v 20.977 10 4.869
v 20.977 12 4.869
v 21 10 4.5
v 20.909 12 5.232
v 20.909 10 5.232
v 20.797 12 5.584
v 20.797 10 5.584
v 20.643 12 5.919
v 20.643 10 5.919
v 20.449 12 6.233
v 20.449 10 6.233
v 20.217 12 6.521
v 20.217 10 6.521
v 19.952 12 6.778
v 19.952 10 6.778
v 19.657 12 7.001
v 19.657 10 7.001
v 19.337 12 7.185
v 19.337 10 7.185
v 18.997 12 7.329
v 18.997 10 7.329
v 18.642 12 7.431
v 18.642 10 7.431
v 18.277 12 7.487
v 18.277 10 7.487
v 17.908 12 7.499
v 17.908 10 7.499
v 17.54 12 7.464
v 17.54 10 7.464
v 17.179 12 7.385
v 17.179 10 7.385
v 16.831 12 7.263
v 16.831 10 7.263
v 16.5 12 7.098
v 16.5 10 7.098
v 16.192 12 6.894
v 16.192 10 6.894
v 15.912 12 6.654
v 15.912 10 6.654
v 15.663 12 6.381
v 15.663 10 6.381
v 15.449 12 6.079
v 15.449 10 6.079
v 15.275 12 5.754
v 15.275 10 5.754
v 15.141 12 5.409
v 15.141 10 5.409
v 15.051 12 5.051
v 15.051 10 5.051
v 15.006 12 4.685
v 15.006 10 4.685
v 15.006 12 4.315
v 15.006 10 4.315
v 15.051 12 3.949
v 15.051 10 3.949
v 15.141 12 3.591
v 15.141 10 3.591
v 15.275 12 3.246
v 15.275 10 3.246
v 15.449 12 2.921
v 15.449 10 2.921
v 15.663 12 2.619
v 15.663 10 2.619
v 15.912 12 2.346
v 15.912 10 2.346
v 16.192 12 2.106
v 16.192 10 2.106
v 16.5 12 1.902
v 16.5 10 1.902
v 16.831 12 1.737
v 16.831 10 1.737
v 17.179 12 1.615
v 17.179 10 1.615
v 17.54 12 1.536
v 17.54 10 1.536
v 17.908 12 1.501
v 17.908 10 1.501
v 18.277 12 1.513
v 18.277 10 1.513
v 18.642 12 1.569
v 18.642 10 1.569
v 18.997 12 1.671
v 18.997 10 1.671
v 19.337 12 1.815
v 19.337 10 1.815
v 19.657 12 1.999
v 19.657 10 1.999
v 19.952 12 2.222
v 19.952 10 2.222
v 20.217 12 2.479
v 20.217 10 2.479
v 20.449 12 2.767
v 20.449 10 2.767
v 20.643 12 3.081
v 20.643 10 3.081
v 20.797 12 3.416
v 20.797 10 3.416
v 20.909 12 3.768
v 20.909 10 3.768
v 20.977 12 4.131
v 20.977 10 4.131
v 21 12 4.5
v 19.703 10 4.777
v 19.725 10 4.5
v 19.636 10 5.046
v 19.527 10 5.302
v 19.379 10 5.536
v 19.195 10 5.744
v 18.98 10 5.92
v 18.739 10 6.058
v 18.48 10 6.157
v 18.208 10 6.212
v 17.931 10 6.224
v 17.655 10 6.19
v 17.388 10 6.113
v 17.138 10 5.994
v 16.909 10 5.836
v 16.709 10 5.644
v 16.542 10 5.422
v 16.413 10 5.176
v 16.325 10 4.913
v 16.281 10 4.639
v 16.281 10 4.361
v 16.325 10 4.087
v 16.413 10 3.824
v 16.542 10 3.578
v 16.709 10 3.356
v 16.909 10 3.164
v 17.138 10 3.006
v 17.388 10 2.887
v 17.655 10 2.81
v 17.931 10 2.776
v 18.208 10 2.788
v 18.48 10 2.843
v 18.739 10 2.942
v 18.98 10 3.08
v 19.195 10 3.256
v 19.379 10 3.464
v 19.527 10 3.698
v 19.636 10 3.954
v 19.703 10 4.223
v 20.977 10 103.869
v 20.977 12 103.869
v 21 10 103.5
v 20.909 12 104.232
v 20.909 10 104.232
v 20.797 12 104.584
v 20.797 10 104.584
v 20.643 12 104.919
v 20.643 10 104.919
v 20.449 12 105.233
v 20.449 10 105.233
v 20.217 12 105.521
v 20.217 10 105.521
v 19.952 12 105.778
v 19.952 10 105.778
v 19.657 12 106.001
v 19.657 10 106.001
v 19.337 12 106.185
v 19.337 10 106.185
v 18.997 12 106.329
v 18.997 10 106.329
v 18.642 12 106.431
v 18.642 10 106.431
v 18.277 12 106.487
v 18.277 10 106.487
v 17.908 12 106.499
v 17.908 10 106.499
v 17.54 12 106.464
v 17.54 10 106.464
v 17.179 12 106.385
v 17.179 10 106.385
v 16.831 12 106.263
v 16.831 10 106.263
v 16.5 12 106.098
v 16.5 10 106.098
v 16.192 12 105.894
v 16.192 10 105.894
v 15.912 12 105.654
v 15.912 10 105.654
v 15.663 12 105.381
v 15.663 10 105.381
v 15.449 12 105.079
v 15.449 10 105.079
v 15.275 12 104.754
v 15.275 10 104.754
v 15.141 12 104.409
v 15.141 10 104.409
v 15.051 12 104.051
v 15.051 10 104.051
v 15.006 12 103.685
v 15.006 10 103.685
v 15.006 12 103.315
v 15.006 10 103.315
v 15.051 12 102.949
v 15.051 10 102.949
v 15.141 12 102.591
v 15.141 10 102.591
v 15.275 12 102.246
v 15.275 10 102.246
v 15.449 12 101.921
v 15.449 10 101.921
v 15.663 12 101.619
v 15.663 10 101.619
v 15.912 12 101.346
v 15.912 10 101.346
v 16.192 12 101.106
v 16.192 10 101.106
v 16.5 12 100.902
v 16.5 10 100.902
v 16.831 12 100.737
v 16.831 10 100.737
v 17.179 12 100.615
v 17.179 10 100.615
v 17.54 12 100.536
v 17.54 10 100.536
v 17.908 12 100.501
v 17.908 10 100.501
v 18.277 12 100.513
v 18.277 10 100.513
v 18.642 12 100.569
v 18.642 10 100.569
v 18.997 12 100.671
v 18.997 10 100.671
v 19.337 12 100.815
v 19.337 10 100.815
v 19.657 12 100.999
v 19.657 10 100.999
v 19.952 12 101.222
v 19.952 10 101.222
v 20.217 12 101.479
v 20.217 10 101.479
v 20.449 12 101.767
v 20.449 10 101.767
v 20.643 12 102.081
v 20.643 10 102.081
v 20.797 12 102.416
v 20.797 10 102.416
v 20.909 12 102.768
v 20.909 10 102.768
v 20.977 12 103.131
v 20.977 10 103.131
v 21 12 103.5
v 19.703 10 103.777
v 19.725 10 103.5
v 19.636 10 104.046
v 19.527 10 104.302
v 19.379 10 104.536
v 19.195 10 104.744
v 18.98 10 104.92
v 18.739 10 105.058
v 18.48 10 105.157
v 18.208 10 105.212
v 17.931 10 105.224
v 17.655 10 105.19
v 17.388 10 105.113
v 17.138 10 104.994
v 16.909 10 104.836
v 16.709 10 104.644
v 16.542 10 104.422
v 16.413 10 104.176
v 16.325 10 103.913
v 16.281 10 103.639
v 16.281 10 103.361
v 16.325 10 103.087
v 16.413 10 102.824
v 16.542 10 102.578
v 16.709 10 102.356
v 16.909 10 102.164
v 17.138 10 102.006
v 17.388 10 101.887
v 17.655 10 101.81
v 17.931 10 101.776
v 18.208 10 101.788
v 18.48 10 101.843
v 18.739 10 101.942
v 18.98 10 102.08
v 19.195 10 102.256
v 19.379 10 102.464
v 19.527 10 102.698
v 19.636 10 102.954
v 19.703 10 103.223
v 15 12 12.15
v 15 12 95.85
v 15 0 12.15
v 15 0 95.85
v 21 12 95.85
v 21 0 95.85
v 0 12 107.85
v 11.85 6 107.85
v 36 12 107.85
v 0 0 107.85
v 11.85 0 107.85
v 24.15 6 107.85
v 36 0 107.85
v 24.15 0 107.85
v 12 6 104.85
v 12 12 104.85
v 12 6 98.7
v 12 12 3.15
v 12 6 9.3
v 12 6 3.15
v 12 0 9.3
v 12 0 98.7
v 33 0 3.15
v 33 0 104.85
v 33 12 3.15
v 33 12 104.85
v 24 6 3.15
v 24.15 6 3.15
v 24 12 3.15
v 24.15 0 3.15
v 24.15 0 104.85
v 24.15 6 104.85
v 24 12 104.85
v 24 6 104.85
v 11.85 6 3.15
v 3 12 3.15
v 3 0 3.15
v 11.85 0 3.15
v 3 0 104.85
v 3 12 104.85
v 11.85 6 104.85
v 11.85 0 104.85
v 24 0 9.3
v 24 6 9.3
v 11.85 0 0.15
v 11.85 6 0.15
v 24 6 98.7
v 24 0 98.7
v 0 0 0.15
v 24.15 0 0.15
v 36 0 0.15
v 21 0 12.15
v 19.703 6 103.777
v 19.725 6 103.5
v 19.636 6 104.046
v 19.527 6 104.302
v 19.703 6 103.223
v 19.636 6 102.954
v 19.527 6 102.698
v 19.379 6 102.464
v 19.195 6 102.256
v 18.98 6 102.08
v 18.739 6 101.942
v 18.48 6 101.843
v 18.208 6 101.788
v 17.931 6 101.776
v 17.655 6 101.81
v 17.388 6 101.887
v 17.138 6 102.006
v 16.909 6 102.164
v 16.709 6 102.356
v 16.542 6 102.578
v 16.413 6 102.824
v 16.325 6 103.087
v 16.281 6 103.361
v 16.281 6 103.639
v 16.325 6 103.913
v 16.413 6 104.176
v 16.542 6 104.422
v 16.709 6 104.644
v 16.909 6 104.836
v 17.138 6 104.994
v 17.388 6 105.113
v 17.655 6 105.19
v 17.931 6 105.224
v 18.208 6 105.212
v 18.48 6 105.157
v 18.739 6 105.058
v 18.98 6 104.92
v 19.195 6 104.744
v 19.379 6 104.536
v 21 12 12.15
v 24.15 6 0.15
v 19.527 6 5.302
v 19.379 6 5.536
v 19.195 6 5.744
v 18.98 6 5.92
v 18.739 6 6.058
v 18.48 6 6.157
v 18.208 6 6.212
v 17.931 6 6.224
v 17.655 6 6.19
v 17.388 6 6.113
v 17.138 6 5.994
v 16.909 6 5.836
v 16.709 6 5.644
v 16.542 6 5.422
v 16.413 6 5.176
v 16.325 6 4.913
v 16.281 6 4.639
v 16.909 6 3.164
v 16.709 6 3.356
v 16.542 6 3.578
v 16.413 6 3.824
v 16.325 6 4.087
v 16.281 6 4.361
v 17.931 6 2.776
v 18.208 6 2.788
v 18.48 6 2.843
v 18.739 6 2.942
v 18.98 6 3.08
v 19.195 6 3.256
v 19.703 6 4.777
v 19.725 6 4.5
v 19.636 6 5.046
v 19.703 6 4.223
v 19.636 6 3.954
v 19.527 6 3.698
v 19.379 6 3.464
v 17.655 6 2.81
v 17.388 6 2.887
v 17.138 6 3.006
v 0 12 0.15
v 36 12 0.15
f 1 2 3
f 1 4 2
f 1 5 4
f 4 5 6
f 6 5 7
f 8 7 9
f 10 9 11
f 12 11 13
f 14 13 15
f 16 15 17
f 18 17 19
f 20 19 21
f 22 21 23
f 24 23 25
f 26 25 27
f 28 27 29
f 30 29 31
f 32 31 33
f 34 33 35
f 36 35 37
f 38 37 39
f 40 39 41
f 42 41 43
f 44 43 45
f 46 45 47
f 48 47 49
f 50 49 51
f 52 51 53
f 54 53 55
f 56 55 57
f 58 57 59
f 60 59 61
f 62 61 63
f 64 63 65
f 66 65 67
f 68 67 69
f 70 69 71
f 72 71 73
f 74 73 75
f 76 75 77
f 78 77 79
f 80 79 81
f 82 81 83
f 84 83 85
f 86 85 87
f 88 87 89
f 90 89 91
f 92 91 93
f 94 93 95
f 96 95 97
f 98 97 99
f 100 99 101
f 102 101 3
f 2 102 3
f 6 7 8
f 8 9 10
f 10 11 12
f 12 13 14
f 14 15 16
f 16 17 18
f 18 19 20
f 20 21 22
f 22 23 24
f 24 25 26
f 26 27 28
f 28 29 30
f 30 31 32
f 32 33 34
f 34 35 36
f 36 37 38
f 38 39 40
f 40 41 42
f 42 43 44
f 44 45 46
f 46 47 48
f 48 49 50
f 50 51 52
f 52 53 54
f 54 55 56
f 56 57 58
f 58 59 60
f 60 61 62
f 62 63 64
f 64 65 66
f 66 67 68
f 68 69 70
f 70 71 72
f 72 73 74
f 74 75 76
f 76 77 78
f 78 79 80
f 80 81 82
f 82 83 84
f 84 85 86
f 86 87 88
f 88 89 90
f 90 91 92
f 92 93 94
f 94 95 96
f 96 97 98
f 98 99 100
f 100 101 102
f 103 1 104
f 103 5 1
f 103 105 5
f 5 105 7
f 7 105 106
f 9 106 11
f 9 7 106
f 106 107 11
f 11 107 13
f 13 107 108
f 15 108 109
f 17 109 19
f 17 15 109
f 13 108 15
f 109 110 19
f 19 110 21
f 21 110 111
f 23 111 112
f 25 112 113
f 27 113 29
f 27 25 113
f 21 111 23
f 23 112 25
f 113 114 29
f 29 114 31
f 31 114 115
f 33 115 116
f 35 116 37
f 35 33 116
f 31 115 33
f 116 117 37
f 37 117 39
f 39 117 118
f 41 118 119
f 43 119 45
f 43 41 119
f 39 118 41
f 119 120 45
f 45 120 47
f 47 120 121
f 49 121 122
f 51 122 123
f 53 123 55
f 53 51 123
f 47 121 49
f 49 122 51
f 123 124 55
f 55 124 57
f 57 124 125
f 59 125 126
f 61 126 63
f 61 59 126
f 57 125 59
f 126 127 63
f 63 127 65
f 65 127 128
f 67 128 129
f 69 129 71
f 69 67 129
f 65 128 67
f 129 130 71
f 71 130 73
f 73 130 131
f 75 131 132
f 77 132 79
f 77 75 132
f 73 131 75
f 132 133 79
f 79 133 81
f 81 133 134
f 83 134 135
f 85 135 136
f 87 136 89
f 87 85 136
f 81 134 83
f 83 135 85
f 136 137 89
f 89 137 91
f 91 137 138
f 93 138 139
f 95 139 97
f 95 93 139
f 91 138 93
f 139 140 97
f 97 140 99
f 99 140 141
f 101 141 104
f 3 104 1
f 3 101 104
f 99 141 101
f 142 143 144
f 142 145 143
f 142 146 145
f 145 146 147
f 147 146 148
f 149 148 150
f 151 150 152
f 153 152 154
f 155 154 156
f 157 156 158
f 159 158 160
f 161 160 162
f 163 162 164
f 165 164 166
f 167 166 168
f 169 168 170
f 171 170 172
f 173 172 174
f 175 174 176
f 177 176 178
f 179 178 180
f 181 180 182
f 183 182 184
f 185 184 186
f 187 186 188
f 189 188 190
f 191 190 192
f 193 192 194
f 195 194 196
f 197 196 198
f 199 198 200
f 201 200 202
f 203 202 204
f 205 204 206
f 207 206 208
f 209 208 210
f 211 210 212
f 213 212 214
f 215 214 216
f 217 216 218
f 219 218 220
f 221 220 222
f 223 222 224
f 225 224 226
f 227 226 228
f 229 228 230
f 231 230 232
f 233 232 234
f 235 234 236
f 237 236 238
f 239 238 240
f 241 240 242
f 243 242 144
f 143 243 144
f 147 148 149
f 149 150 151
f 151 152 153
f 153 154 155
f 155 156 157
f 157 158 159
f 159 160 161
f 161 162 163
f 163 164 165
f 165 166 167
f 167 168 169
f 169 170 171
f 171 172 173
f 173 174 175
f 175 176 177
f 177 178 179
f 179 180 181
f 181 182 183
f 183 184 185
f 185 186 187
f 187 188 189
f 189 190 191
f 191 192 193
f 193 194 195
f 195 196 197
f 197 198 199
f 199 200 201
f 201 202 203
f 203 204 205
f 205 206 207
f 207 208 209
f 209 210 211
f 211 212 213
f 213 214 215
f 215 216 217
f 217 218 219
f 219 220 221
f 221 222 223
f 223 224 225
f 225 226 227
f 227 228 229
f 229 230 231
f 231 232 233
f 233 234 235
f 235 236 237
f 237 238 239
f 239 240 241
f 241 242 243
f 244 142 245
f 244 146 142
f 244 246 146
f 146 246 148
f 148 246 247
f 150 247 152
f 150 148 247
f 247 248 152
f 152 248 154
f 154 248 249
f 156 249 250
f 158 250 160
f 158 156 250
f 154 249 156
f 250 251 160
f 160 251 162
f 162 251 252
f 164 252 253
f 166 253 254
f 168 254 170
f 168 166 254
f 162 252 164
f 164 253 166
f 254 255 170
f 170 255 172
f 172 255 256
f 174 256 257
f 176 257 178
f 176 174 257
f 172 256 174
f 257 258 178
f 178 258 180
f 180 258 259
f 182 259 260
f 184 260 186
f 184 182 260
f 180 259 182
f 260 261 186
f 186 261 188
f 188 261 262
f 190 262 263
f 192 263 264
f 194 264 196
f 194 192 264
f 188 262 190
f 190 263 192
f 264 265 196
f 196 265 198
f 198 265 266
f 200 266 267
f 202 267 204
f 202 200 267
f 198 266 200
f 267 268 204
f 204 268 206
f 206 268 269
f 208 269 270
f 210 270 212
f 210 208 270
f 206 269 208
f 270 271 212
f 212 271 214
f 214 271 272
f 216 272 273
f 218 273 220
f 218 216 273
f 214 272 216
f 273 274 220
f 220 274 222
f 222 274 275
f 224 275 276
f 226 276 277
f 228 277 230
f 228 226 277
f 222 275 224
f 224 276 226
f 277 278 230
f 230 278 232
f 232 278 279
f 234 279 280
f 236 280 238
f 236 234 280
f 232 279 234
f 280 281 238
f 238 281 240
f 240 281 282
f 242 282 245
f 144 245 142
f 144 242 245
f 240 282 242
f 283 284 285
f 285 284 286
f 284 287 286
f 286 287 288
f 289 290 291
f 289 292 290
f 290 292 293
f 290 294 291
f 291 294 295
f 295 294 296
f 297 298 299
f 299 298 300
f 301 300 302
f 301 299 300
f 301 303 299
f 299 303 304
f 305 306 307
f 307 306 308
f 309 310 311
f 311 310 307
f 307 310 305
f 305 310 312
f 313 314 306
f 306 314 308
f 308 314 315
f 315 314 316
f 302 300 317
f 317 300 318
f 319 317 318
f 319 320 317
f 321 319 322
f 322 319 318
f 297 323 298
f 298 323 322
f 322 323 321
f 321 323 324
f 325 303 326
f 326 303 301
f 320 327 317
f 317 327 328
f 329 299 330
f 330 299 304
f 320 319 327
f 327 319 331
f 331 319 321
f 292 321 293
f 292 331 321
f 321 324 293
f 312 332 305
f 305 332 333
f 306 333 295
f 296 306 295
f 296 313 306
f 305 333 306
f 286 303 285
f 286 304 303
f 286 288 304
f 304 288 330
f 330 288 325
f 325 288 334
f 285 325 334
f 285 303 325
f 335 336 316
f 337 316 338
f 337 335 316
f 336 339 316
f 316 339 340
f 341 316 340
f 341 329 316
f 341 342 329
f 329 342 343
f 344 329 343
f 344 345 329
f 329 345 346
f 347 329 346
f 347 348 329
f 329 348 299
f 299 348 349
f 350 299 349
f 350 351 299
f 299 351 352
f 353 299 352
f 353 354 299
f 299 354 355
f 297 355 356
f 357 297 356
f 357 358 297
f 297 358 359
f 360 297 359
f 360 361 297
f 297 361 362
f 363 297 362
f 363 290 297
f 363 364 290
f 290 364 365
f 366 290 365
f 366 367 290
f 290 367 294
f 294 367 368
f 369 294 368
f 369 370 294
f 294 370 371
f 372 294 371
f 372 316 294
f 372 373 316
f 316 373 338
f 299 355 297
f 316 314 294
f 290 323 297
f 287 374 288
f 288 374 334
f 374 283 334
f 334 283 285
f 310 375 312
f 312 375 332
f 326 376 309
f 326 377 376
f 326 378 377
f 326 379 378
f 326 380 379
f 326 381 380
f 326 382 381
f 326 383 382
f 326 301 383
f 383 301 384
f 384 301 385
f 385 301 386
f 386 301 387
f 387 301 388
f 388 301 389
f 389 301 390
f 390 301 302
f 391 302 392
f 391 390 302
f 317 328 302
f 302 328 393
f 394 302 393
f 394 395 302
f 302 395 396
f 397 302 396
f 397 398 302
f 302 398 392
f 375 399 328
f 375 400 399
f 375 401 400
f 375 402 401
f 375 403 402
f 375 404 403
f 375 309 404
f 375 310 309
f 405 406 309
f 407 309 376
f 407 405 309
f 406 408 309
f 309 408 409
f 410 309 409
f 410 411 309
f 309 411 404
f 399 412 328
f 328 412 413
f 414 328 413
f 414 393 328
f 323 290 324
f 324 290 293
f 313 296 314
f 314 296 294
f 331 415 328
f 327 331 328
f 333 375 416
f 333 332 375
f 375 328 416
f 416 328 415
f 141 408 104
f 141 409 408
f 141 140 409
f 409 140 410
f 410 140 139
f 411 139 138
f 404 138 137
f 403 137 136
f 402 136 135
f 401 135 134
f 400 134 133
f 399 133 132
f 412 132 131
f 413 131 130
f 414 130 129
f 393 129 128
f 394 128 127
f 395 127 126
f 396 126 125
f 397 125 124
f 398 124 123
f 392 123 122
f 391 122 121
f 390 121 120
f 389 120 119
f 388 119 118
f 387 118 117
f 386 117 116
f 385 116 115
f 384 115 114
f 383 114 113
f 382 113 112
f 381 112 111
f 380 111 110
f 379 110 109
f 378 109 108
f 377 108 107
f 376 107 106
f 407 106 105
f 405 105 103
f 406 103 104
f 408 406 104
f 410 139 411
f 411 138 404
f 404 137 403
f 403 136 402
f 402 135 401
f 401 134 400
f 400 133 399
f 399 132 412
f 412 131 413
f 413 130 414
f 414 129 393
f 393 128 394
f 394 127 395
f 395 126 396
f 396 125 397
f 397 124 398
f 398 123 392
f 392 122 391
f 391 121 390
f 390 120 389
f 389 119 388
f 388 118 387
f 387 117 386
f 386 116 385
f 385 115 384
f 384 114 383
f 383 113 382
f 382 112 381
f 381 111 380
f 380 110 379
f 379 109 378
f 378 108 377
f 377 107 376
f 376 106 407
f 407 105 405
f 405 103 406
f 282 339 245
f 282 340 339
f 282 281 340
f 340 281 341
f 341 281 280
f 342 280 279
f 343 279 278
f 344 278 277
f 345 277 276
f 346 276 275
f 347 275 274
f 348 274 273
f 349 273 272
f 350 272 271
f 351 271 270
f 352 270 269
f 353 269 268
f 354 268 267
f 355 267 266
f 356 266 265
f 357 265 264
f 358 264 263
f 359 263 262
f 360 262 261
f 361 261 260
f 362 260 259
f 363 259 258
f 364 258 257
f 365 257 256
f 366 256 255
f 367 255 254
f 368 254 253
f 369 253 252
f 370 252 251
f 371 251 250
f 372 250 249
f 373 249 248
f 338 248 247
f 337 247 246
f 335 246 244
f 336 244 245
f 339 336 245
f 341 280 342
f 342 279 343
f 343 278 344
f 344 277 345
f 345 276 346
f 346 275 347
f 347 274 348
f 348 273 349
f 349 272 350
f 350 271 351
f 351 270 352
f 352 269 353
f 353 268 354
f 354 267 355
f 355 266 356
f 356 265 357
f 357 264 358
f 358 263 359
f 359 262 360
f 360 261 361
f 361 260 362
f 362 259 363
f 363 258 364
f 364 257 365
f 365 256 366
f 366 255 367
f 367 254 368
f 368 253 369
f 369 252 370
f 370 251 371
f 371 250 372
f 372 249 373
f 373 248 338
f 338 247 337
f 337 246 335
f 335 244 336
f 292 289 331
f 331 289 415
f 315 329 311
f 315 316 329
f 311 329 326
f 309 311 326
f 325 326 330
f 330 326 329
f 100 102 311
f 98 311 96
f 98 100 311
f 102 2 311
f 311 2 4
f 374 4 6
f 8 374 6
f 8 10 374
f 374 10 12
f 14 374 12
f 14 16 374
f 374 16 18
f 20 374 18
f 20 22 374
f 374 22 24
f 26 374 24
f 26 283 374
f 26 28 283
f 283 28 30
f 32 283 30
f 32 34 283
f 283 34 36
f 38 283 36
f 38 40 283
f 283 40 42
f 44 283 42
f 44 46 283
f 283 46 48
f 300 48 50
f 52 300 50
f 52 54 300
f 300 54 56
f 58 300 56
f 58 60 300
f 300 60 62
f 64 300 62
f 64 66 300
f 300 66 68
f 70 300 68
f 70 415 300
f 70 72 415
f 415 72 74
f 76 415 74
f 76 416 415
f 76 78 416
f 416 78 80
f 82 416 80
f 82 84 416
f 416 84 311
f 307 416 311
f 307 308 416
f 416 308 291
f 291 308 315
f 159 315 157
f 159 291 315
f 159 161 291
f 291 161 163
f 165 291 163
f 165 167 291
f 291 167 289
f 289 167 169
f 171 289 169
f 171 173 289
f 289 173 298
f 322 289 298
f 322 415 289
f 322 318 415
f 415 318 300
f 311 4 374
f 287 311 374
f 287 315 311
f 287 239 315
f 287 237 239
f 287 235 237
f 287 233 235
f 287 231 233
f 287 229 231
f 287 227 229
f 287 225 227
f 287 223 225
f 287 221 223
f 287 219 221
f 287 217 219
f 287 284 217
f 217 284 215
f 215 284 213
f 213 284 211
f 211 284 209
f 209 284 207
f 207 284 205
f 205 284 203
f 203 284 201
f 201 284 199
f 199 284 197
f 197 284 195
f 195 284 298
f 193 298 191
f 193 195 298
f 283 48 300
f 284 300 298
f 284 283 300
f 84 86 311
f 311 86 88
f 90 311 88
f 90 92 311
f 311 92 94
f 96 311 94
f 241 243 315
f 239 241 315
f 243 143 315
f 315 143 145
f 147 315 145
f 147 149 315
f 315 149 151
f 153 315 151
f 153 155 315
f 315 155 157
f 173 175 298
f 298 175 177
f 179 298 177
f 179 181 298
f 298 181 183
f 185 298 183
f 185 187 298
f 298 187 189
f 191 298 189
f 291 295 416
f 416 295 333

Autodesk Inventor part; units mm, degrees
ref_plane "YZ Plane" through (0, 0, 0) normal (1, 0, 0) x (0, 1, 0)
ref_plane "XZ Plane" through (0, 0, 0) normal (0, 1, 0) x (-1, 0, 0)
ref_plane "XY Plane" through (0, 0, 0) normal (0, 0, 1) x (1, 0, 0)
sketch "Sketch1" plane through (0, 0, 0) normal (0, 0, 1) x (1, 0, 0)
  line L0 (0, 0) -> (36, 0)
  line L1 (36, 0) -> (36, 12)
  line L2 (36, 12) -> (24, 12)
  line L3 (24, 12) -> (24, 22)
  line L4 (24, 22) -> (12, 22)
  line L5 (12, 22) -> (12, 12)
  line L6 (12, 12) -> (0, 12)
  line L7 (0, 12) -> (0, 0)
  dimension "d0" = 36
  dimension "d1" = 12
  dimension "d2" = 12
  dimension "d3" = 10
  dimension "d4" = 12
extrude "Extrusion1" add sketch "Sketch1" along normal blind 108
sketch "Sketch2" plane through (0, 0, 0) normal (0, -1, 0) x (1, 0, 0)
  circle A0 centre (18, 4.5) radius 1.725
  line L0 (0, 0) -> (36, 0) projected
  line L1 (36, 0) -> (36, 108) projected
  circle A1 centre (18, 103.5) radius 1.725
  line L2 (0, 108) -> (36, 108) projected
  dimension "d7" = 3.45
  dimension "d8" = 4.5
  dimension "d9" = 18
  dimension "d10" = 3.45
  dimension "d11" = 18
  dimension "d12" = 4.5
extrude "Extrusion2" cut sketch "Sketch2" against normal blind 20
sketch "Sketch3" plane through (12, 22, 0) normal (0, 1, 0) x (1, 0, 0)
  circle A0 centre (6, -4.5) radius 1.725 projected
  circle A1 centre (6, -4.5) radius 3
  circle A2 centre (6, -103.5) radius 1.725 projected
  circle A3 centre (6, -103.5) radius 3
  point P0 (-12, 0)
  dimension "d15" = 6
  dimension "d16" = 6
extrude "Extrusion3" cut sketch "Sketch3" against normal blind 2 contours A0 | A1 | A2 | A3
sketch "Sketch4" plane through (36, 0, 0) normal (1, 0, 0) x (0, 0, -1)
  line L0 (-108, 0) -> (-107.85, 0)
  line L1 (0, 0) -> (-108, 0) projected
  line L2 (-107.85, 0) -> (-107.85, 12)
  line L3 (0, 12) -> (-108, 12) projected
  line L4 (-108, 0) -> (-108, 12) projected
  line L5 (-108, 12) -> (-108, 0)
  line L6 (-108, 22) -> (-107.85, 22)
  line L7 (-107.85, 12) -> (-108, 12)
  line L8 (0, 0) -> (-0.15, 0)
  line L9 (-0.15, 0) -> (-0.15, 12)
  line L10 (-0.15, 12) -> (0, 12)
  line L11 (0, 12) -> (0, 0)
  line L12 (0, 22) -> (-0.15, 22)
  line L13 (-0.15, 12) -> (0, 12)
  dimension "d19" = 0.15
  dimension "d20" = 12
  dimension "d21" = 0.15
  dimension "d22" = 0.15
extrude "Extrusion4" cut sketch "Sketch4" against normal through all contours L4 L3 L2 L0 | L9 L3 L11 L1
sketch "Sketch5" plane through (24, 22, 108) normal (1, 0, 0) x (0, 0, -1)
  line L0 (108, -10) -> (108, 0) projected
  line L1 (108, 0) -> (0, 0) projected
  line L2 (108, -10) -> (107.85, -10)
  line L3 (107.85, -10) -> (107.85, 0)
  line L4 (107.85, 0) -> (108, 0)
  line L5 (108, 0) -> (108, -10)
  line L6 (0.15, -10) -> (0, -10) projected
  line L7 (0, -10) -> (0, 0) projected
  line L8 (0.15, -10) -> (0, -10)
  line L9 (0, -10) -> (0, 0)
  line L10 (0, 0) -> (0.15, 0)
  line L11 (0.15, 0) -> (0.15, -10)
  point P0 (108, -22)
  dimension "d25" = 0.15
extrude "Extrusion5" cut sketch "Sketch5" against normal through all
sketch "Sketch6" plane through (12, 22, 0.15) normal (0, 1, 0) x (1, 0, 0)
  point P0 (0, -107.7)
sketch "Sketch7" plane through (0, 0, 107.85) normal (0, -1, 0) x (1, 0, 0)
  line L0 (0, -107.7) -> (36, -107.7) projected
  line L1 (11.85, -107.7) -> (24.15, -107.7)
  line L2 (24.15, -107.7) -> (24.15, -98.55)
  line L3 (24.15, -98.55) -> (11.85, -98.55)
  line L4 (11.85, -98.55) -> (11.85, -107.7)
  line L5 (0, 0) -> (12, 0) projected
  line L6 (11.85, 0) -> (24.15, 0)
  line L7 (24.15, 0) -> (24.15, -9.15)
  line L8 (24.15, -9.15) -> (11.85, -9.15)
  line L9 (11.85, -9.15) -> (11.85, 0)
  line L10 (36, -107.7) -> (36, 0) projected
  point P0 (0, -107.85)
  dimension "d30" = 11.85
  dimension "d31" = 11.85
  dimension "d32" = 9.15
  dimension "d33" = 11.85
  dimension "d34" = 11.85
  dimension "d35" = 9.15
extrude "Extrusion6" cut sketch "Sketch7" against normal blind 6
sketch "Sketch8" plane through (36, 0, 0.15) normal (0, -1, 0) x (1, 0, 0)
  line L0 (-21, 95.7) -> (-15, 95.7)
  line L1 (-15, 95.7) -> (-15, 12)
  line L2 (-15, 12) -> (-21, 12)
  line L3 (-21, 12) -> (-21, 95.7)
  line L4 (-11.85, 0) -> (-24.15, 0) projected
  line L5 (0, 107.7) -> (-11.85, 107.7) projected
  line L6 (-24, 0) -> (-24, 107.7) projected
  line L7 (-12, 0) -> (-12, 107.7) projected
  point P0 (-36, -0.15)
  dimension "d38" = 12
  dimension "d39" = 12
  dimension "d40" = 3
  dimension "d41" = 3
extrude "Extrusion7" cut sketch "Sketch8" against normal through all
sketch "Sketch9" plane through (24, 12, 107.85) normal (0, 1, 0) x (1, 0, 0)
  line L0 (9, 3) -> (0, 3)
  line L1 (0, 3) -> (0, 104.7)
  line L2 (0, 104.7) -> (9, 104.7)
  line L3 (9, 104.7) -> (9, 3)
  line L4 (-12, 3) -> (-21, 3)
  line L5 (-21, 3) -> (-21, 104.7)
  line L6 (-21, 104.7) -> (-12, 104.7)
  line L7 (-12, 104.7) -> (-12, 3)
  line L8 (12, 0) -> (0.15, 0) projected
  line L9 (12, 107.7) -> (0, 107.7) projected
  line L10 (12, 107.7) -> (12, 0) projected
  line L11 (-24, 107.7) -> (-24, 0) projected
  line L12 (-12, 107.7) -> (-24, 107.7) projected
  line L13 (-24, 0) -> (-12, 0) projected
  line L14 (-12, 107.7) -> (-12, 0) projected
  line L15 (0, 107.7) -> (0, 0) projected
  point P0 (-24, 107.85)
  dimension "d44" = 3
  dimension "d45" = 3
  dimension "d46" = 3
  dimension "d47" = 3
  dimension "d48" = 3
  dimension "d49" = 3
  dimension "d50" = 0
  dimension "d51" = 0
extrude "Extrusion8" cut sketch "Sketch9" against normal through all contours L0 L1 L2 L3 | L4 L5 L6 L7
sketch "Sketch10" plane through (12, 0, 98.7) normal (0, -1, 0) x (1, 0, 0)
  line L0 (3, -86.55) -> (3, -2.85) projected
  line L1 (9, -2.85) -> (9, -86.55) projected
  line L2 (3, -2.85) -> (9, -2.85)
  line L3 (9, -2.85) -> (9, -86.55)
  line L4 (9, -86.55) -> (3, -86.55)
  line L5 (3, -86.55) -> (3, -2.85)
  line L6 (0, 0) -> (0, -89.4) projected
  line L7 (0, 0) -> (12, 0)
  line L8 (12, 0) -> (12, -89.4)
  line L9 (12, -89.4) -> (0, -89.4)
  line L10 (0, -89.4) -> (0, 0)
  line L11 (12, -89.4) -> (0, -89.4)
  line L12 (0, -89.4) -> (0, 0)
  line L13 (0, 0) -> (12, 0)
  line L14 (12, 0) -> (12, -89.4)
  point P0 (-12, -98.7)
sketch "Sketch11" plane through (24, 12, 0.15) normal (1, 0, 0) x (0, 0, -1)
  line L0 (-107.7, 0) -> (-107.7, 10) projected
  line L1 (0, 0) -> (-107.7, 0) projected
  line L2 (-107.7, 10) -> (0, 10)
  line L3 (0, 10) -> (0, 0)
  line L4 (0, 0) -> (-107.7, 0)
  line L5 (-107.7, 0) -> (-107.7, 10)
  point P0 (0.15, -12)
extrude "Extrusion9" cut sketch "Sketch11" against normal through all
sketch "Sketch12" plane through (0, 12, 107.85) normal (0, 1, 0) x (1, 0, 0)
  circle A0 centre (18, 103.35) radius 1.725 projected
  circle A1 centre (18, 103.35) radius 3
  circle A2 centre (18, 4.35) radius 1.725 projected
  circle A3 centre (18, 4.35) radius 3
  point P0 (0, 107.85)
  dimension "d56" = 6
  dimension "d57" = 6
extrude "Extrusion10" cut sketch "Sketch12" against normal blind 2
properties part number "topCenterBeam"
